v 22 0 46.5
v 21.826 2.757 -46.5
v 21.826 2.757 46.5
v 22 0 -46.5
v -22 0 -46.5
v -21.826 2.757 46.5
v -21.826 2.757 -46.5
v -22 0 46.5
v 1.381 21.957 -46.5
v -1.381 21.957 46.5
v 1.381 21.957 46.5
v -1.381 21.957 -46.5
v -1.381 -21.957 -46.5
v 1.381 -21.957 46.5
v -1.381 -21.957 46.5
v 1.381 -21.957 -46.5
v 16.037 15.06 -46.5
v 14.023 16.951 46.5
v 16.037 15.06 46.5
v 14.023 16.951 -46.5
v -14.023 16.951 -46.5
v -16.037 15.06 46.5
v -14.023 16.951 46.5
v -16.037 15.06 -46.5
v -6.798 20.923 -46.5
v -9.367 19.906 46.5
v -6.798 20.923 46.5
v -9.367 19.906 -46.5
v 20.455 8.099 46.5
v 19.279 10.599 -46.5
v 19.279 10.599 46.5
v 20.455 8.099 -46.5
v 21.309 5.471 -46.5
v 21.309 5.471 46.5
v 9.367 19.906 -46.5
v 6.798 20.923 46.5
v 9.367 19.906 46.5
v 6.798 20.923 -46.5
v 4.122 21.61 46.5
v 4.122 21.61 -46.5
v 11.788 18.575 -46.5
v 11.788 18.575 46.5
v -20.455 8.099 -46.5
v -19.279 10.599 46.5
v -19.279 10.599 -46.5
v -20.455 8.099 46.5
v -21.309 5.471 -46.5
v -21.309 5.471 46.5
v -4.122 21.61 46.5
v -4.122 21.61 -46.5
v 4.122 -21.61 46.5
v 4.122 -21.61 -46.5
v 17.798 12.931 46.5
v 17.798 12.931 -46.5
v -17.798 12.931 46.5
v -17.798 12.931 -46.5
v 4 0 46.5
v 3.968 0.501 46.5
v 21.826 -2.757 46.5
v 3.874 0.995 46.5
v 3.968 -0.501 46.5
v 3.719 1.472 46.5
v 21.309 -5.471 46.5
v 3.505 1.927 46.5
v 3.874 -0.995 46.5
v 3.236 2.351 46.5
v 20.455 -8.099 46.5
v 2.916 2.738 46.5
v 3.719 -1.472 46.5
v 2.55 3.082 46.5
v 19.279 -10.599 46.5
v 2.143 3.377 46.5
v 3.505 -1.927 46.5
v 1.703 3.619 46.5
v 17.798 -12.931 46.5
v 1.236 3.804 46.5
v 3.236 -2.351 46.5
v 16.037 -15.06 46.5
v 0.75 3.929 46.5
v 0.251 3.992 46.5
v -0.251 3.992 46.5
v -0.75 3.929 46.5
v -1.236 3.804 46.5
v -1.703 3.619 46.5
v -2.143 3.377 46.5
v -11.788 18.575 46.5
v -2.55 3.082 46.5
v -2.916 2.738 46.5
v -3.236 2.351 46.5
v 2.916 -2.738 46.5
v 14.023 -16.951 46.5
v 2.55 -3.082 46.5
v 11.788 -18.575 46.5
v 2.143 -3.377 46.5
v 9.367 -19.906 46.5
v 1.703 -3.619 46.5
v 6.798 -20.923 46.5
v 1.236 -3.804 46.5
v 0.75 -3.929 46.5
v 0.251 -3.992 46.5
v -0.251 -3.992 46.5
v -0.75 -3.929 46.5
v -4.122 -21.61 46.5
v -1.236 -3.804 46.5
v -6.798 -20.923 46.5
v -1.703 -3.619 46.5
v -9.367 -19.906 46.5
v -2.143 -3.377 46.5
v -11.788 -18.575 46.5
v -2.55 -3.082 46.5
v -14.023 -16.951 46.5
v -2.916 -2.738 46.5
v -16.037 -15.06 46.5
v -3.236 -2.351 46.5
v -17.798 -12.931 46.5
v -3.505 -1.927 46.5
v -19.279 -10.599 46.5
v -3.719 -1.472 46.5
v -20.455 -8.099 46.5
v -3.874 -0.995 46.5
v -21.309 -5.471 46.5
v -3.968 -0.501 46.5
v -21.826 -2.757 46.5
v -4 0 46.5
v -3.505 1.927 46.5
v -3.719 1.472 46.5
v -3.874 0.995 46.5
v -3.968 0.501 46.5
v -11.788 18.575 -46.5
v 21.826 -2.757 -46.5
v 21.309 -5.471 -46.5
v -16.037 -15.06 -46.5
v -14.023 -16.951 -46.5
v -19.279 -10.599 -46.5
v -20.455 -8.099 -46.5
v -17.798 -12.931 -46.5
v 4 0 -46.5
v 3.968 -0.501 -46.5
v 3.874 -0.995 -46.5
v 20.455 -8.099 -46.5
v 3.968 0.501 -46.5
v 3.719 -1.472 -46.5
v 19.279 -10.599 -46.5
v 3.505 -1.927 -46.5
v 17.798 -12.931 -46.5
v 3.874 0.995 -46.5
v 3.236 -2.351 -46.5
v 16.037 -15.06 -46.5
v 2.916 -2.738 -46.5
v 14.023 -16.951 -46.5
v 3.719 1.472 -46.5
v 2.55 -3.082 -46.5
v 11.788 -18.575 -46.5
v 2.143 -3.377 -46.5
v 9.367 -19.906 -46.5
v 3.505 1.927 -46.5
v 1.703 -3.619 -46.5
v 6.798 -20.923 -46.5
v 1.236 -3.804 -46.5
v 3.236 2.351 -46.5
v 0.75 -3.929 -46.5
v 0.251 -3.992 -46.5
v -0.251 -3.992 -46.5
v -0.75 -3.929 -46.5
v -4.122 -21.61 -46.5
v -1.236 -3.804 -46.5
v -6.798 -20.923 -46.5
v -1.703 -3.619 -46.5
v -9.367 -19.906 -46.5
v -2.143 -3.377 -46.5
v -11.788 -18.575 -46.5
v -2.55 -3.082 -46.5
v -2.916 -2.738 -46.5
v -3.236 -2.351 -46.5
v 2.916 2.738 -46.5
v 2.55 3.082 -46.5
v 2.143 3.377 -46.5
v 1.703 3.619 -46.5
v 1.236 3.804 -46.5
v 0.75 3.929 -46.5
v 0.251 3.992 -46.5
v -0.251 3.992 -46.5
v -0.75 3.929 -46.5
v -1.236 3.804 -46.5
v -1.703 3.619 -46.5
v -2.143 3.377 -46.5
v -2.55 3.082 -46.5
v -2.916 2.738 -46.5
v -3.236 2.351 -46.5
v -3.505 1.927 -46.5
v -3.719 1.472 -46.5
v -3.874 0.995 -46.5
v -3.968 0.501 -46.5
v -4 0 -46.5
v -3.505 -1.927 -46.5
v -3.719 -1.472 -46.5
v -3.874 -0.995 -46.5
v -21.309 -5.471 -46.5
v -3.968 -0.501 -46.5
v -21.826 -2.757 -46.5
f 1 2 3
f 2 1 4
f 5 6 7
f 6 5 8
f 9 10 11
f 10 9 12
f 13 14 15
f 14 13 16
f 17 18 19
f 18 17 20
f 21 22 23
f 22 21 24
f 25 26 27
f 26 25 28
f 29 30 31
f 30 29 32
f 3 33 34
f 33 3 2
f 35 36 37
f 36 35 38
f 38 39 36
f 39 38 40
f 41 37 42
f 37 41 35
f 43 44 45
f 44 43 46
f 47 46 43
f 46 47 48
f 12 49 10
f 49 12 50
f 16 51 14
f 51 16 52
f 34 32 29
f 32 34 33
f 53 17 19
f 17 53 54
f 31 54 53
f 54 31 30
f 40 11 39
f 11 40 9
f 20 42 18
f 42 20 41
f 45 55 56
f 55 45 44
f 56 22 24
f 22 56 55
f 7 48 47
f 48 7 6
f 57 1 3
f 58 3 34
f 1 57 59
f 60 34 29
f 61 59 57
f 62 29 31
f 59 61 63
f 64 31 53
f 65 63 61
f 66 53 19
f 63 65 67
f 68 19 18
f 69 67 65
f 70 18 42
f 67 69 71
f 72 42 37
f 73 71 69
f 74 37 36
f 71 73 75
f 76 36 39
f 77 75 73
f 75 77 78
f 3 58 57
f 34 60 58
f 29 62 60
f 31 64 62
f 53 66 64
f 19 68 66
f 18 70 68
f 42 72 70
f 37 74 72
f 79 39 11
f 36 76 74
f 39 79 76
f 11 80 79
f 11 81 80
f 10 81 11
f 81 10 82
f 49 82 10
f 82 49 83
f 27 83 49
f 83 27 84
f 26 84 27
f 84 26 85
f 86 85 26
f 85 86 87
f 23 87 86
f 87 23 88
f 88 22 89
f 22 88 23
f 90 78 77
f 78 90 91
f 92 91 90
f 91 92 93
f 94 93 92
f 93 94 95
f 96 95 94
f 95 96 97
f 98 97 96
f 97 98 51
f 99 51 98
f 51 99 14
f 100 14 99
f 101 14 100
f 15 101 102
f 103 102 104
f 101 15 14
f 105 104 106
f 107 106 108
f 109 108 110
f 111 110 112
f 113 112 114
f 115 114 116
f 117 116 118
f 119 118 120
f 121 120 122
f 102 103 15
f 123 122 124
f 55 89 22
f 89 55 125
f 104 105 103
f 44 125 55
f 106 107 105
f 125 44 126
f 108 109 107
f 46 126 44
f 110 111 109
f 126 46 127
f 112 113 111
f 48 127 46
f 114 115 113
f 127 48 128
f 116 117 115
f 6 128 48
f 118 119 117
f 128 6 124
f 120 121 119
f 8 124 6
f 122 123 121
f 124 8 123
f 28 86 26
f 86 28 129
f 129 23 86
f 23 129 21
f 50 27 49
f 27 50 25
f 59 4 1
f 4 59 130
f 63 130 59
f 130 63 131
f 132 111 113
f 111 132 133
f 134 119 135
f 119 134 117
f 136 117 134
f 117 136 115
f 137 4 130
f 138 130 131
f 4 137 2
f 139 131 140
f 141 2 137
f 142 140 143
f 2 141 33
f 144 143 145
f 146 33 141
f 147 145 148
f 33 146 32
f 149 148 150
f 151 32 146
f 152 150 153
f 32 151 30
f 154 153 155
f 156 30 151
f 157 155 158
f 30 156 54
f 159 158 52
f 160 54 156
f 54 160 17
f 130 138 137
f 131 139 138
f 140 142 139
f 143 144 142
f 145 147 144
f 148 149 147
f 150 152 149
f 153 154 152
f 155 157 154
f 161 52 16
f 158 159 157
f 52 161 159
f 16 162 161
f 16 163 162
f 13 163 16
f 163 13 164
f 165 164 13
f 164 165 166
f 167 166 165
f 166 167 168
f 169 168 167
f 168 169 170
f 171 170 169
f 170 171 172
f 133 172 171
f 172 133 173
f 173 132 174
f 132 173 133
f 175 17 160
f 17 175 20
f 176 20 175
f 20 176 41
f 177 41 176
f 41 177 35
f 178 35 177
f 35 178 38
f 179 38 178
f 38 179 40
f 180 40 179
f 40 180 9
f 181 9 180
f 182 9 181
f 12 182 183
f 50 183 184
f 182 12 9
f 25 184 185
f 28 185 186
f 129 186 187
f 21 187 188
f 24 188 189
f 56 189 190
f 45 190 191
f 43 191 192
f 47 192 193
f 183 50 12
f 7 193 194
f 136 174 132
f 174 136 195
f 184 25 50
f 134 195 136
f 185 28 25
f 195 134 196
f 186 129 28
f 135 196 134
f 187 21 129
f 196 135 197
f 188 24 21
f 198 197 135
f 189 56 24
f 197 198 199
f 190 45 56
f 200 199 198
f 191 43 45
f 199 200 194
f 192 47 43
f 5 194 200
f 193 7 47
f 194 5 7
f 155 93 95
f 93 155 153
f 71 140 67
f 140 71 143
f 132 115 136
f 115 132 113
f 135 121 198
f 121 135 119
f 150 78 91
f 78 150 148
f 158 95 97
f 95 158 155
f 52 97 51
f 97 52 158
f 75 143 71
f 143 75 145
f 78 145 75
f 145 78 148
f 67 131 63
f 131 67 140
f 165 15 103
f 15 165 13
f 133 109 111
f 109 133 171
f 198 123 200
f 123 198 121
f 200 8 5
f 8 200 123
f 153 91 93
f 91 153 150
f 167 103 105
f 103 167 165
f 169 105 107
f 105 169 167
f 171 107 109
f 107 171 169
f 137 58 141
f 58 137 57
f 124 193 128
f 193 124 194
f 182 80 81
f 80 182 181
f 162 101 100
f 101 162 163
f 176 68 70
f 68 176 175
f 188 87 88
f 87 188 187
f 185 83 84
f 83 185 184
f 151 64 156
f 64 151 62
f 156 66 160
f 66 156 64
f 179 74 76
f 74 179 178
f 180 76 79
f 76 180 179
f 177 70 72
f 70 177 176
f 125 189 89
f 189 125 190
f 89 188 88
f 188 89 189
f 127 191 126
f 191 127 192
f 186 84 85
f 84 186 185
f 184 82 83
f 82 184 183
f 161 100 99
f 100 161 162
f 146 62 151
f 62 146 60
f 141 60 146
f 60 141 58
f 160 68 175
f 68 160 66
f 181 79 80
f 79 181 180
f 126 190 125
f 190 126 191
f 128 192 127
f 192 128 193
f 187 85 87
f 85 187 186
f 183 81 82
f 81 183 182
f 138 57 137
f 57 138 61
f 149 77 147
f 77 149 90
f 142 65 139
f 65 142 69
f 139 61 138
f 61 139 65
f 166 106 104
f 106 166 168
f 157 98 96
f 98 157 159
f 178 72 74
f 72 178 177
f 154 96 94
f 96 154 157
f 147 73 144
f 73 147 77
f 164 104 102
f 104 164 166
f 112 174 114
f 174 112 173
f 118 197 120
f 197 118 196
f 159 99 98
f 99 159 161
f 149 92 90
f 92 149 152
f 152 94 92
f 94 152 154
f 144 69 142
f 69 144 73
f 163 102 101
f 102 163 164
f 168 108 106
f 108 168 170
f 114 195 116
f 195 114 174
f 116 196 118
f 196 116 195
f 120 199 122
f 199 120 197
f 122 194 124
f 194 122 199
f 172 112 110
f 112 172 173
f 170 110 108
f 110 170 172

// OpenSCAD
$fn = 50;


difference() {
	union() {
		translate(v = [0, 0, -46.5000000000]) {
			cylinder(h = 93, r = 22.0000000000);
		}
	}
	union() {
		translate(v = [0, 0, -100.0000000000]) {
			cylinder(h = 200, r = 4);
		}
	}
}
